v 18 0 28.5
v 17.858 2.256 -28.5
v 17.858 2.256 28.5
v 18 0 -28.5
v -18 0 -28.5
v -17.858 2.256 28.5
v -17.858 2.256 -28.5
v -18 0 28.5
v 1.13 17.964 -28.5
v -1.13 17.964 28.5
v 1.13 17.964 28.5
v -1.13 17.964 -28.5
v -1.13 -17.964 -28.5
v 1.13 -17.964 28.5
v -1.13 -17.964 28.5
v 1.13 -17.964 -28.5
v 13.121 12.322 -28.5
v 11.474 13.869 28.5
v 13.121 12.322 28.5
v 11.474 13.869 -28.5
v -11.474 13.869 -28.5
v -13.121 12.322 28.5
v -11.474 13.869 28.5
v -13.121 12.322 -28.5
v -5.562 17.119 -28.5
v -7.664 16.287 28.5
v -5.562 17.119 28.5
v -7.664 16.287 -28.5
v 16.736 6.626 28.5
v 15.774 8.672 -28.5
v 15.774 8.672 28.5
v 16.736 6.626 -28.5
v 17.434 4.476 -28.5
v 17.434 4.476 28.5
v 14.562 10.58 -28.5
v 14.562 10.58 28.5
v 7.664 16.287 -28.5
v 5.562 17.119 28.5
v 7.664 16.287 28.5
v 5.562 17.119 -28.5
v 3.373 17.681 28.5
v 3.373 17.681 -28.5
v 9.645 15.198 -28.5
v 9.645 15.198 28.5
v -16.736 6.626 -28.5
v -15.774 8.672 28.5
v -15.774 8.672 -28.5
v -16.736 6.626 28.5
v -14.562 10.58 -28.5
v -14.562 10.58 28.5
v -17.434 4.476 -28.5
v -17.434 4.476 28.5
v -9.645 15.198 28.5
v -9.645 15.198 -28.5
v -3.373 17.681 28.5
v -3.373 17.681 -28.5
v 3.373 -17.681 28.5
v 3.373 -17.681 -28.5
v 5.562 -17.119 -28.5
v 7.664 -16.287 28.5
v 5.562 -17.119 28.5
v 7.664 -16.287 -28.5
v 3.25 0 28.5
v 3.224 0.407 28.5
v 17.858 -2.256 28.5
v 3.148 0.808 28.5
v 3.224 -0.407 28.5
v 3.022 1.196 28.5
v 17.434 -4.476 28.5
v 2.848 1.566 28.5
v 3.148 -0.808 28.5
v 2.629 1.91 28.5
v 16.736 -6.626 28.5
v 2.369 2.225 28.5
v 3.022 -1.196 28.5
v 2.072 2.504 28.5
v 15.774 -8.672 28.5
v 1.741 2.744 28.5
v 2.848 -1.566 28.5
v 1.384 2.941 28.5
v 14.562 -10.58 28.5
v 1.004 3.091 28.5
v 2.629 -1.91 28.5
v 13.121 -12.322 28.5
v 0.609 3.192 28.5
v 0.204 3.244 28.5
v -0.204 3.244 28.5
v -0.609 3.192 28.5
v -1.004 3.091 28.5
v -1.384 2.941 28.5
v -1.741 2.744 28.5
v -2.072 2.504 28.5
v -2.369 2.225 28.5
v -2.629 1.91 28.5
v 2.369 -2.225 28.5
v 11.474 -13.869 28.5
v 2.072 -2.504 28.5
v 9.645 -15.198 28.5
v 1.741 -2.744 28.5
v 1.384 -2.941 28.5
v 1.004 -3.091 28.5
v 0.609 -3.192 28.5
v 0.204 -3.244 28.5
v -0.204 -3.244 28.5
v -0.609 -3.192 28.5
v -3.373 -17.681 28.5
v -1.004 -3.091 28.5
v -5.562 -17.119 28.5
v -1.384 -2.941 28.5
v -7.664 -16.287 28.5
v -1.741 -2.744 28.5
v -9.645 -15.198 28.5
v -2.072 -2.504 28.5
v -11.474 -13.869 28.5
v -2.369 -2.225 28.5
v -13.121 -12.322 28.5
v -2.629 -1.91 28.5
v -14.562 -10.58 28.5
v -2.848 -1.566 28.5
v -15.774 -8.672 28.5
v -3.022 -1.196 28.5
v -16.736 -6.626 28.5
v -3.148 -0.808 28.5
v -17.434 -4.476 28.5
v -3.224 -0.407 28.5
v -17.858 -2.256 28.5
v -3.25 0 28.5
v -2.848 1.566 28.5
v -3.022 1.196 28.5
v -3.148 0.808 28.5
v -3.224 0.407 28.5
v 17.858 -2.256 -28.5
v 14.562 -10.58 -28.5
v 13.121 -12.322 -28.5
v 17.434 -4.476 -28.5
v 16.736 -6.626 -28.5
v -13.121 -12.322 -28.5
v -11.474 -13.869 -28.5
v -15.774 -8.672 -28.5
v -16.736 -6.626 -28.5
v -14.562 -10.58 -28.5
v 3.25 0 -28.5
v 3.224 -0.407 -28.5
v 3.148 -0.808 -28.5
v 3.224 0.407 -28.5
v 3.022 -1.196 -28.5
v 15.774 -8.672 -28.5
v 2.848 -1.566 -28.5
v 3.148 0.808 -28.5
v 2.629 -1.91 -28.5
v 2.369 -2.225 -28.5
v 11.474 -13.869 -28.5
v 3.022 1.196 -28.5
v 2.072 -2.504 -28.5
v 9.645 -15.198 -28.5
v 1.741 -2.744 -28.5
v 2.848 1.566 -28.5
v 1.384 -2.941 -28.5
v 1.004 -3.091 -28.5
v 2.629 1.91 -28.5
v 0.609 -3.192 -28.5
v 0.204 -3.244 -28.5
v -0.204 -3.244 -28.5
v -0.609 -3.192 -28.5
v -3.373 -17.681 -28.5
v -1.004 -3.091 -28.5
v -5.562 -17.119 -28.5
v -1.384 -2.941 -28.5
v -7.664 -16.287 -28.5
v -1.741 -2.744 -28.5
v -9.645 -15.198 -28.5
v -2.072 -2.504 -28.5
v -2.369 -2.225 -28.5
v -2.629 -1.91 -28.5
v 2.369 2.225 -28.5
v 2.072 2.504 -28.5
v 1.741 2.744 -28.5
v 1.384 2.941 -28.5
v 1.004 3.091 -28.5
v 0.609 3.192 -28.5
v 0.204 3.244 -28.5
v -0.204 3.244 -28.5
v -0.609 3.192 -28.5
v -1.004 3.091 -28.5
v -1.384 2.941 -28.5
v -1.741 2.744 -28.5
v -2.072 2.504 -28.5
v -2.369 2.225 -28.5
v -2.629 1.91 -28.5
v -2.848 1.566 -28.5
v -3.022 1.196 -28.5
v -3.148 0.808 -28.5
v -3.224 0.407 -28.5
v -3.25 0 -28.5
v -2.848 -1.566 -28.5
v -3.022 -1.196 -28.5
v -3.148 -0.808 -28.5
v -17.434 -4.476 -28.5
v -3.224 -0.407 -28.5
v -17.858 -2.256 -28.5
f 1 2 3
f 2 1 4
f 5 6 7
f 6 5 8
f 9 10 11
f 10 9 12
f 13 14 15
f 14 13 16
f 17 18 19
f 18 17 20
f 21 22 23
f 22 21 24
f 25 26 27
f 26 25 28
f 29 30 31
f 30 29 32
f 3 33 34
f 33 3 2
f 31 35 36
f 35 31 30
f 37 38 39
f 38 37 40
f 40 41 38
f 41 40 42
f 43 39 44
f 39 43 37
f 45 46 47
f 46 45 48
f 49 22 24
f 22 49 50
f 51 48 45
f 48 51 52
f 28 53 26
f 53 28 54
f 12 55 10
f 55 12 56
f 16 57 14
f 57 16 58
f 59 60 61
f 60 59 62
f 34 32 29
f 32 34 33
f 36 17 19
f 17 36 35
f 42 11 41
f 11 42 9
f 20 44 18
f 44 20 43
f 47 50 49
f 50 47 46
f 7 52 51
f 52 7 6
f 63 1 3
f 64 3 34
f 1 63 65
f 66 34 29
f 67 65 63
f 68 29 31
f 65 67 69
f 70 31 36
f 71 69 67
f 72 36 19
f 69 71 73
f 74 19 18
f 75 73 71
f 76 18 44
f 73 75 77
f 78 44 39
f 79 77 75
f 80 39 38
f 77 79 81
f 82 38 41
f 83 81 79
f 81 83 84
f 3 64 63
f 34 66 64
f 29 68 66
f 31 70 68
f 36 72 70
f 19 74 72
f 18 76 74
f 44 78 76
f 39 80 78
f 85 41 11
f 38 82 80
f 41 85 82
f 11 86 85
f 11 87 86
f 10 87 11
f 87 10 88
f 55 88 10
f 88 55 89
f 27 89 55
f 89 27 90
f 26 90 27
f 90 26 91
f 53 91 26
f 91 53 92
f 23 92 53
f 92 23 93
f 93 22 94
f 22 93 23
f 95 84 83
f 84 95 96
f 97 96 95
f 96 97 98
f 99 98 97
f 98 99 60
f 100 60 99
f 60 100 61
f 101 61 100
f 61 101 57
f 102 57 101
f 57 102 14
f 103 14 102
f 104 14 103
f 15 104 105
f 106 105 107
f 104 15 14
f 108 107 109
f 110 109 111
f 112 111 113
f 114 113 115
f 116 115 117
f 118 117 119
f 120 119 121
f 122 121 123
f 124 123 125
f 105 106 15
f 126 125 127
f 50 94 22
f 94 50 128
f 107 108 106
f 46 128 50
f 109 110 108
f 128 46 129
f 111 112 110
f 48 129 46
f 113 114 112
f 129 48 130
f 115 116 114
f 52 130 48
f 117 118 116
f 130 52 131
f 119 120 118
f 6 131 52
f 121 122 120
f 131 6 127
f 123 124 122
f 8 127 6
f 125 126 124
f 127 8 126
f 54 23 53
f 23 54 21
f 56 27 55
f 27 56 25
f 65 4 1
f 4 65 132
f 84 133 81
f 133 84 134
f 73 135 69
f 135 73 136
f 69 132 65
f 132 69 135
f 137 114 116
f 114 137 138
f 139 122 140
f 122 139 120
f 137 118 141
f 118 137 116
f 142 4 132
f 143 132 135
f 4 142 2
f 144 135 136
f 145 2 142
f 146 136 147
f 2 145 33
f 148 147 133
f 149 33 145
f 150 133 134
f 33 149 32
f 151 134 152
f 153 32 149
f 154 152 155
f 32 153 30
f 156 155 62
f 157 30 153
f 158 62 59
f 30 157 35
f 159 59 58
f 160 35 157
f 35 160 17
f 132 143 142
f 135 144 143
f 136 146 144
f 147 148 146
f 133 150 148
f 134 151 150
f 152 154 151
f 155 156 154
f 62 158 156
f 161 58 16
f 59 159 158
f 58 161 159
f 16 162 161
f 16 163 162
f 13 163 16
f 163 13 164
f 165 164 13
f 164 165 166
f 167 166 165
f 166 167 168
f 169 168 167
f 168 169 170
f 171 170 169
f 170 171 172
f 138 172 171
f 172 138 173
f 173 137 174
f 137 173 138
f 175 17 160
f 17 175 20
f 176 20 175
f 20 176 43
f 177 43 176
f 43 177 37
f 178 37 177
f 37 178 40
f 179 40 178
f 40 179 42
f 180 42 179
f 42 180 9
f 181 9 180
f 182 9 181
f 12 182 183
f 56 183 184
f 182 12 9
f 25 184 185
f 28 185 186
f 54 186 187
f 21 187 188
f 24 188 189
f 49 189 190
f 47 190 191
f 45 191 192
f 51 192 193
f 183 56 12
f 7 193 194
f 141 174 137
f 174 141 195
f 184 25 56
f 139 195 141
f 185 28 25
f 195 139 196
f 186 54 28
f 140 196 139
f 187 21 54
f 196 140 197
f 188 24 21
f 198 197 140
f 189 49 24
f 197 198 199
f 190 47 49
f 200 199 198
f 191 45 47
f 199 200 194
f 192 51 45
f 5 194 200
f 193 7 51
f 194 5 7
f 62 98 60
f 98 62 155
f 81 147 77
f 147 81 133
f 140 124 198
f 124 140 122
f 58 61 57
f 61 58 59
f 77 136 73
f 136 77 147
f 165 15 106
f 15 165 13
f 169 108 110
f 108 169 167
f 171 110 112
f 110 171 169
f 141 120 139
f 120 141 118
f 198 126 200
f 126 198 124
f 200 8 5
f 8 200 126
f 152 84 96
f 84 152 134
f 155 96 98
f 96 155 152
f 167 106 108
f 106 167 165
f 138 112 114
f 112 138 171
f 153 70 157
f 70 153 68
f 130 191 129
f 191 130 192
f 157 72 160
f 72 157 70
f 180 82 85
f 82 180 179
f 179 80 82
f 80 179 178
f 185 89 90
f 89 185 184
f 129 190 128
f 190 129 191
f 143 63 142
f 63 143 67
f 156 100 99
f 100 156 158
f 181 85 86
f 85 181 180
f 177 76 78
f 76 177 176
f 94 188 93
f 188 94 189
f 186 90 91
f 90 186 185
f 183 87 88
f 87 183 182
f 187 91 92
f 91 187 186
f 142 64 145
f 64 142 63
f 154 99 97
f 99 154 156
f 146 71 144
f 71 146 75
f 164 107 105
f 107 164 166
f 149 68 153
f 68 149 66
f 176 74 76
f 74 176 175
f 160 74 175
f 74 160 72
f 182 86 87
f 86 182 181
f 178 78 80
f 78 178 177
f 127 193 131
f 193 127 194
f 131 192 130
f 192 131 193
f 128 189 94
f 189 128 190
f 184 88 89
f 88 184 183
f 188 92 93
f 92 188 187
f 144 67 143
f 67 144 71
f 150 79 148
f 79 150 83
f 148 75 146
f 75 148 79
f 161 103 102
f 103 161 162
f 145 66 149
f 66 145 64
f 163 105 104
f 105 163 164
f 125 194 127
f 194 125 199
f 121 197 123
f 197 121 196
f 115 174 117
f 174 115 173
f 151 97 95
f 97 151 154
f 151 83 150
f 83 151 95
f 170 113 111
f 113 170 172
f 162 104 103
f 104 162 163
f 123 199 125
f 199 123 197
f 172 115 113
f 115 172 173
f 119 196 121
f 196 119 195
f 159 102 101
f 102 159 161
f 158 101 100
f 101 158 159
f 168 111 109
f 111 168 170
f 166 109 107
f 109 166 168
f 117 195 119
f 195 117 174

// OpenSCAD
$fn = 50;


difference() {
	union() {
		translate(v = [0, 0, -28.5000000000]) {
			cylinder(h = 57, r = 18.0000000000);
		}
	}
	union() {
		translate(v = [0, 0, -100.0000000000]) {
			cylinder(h = 200, r = 3.2500000000);
		}
	}
}
